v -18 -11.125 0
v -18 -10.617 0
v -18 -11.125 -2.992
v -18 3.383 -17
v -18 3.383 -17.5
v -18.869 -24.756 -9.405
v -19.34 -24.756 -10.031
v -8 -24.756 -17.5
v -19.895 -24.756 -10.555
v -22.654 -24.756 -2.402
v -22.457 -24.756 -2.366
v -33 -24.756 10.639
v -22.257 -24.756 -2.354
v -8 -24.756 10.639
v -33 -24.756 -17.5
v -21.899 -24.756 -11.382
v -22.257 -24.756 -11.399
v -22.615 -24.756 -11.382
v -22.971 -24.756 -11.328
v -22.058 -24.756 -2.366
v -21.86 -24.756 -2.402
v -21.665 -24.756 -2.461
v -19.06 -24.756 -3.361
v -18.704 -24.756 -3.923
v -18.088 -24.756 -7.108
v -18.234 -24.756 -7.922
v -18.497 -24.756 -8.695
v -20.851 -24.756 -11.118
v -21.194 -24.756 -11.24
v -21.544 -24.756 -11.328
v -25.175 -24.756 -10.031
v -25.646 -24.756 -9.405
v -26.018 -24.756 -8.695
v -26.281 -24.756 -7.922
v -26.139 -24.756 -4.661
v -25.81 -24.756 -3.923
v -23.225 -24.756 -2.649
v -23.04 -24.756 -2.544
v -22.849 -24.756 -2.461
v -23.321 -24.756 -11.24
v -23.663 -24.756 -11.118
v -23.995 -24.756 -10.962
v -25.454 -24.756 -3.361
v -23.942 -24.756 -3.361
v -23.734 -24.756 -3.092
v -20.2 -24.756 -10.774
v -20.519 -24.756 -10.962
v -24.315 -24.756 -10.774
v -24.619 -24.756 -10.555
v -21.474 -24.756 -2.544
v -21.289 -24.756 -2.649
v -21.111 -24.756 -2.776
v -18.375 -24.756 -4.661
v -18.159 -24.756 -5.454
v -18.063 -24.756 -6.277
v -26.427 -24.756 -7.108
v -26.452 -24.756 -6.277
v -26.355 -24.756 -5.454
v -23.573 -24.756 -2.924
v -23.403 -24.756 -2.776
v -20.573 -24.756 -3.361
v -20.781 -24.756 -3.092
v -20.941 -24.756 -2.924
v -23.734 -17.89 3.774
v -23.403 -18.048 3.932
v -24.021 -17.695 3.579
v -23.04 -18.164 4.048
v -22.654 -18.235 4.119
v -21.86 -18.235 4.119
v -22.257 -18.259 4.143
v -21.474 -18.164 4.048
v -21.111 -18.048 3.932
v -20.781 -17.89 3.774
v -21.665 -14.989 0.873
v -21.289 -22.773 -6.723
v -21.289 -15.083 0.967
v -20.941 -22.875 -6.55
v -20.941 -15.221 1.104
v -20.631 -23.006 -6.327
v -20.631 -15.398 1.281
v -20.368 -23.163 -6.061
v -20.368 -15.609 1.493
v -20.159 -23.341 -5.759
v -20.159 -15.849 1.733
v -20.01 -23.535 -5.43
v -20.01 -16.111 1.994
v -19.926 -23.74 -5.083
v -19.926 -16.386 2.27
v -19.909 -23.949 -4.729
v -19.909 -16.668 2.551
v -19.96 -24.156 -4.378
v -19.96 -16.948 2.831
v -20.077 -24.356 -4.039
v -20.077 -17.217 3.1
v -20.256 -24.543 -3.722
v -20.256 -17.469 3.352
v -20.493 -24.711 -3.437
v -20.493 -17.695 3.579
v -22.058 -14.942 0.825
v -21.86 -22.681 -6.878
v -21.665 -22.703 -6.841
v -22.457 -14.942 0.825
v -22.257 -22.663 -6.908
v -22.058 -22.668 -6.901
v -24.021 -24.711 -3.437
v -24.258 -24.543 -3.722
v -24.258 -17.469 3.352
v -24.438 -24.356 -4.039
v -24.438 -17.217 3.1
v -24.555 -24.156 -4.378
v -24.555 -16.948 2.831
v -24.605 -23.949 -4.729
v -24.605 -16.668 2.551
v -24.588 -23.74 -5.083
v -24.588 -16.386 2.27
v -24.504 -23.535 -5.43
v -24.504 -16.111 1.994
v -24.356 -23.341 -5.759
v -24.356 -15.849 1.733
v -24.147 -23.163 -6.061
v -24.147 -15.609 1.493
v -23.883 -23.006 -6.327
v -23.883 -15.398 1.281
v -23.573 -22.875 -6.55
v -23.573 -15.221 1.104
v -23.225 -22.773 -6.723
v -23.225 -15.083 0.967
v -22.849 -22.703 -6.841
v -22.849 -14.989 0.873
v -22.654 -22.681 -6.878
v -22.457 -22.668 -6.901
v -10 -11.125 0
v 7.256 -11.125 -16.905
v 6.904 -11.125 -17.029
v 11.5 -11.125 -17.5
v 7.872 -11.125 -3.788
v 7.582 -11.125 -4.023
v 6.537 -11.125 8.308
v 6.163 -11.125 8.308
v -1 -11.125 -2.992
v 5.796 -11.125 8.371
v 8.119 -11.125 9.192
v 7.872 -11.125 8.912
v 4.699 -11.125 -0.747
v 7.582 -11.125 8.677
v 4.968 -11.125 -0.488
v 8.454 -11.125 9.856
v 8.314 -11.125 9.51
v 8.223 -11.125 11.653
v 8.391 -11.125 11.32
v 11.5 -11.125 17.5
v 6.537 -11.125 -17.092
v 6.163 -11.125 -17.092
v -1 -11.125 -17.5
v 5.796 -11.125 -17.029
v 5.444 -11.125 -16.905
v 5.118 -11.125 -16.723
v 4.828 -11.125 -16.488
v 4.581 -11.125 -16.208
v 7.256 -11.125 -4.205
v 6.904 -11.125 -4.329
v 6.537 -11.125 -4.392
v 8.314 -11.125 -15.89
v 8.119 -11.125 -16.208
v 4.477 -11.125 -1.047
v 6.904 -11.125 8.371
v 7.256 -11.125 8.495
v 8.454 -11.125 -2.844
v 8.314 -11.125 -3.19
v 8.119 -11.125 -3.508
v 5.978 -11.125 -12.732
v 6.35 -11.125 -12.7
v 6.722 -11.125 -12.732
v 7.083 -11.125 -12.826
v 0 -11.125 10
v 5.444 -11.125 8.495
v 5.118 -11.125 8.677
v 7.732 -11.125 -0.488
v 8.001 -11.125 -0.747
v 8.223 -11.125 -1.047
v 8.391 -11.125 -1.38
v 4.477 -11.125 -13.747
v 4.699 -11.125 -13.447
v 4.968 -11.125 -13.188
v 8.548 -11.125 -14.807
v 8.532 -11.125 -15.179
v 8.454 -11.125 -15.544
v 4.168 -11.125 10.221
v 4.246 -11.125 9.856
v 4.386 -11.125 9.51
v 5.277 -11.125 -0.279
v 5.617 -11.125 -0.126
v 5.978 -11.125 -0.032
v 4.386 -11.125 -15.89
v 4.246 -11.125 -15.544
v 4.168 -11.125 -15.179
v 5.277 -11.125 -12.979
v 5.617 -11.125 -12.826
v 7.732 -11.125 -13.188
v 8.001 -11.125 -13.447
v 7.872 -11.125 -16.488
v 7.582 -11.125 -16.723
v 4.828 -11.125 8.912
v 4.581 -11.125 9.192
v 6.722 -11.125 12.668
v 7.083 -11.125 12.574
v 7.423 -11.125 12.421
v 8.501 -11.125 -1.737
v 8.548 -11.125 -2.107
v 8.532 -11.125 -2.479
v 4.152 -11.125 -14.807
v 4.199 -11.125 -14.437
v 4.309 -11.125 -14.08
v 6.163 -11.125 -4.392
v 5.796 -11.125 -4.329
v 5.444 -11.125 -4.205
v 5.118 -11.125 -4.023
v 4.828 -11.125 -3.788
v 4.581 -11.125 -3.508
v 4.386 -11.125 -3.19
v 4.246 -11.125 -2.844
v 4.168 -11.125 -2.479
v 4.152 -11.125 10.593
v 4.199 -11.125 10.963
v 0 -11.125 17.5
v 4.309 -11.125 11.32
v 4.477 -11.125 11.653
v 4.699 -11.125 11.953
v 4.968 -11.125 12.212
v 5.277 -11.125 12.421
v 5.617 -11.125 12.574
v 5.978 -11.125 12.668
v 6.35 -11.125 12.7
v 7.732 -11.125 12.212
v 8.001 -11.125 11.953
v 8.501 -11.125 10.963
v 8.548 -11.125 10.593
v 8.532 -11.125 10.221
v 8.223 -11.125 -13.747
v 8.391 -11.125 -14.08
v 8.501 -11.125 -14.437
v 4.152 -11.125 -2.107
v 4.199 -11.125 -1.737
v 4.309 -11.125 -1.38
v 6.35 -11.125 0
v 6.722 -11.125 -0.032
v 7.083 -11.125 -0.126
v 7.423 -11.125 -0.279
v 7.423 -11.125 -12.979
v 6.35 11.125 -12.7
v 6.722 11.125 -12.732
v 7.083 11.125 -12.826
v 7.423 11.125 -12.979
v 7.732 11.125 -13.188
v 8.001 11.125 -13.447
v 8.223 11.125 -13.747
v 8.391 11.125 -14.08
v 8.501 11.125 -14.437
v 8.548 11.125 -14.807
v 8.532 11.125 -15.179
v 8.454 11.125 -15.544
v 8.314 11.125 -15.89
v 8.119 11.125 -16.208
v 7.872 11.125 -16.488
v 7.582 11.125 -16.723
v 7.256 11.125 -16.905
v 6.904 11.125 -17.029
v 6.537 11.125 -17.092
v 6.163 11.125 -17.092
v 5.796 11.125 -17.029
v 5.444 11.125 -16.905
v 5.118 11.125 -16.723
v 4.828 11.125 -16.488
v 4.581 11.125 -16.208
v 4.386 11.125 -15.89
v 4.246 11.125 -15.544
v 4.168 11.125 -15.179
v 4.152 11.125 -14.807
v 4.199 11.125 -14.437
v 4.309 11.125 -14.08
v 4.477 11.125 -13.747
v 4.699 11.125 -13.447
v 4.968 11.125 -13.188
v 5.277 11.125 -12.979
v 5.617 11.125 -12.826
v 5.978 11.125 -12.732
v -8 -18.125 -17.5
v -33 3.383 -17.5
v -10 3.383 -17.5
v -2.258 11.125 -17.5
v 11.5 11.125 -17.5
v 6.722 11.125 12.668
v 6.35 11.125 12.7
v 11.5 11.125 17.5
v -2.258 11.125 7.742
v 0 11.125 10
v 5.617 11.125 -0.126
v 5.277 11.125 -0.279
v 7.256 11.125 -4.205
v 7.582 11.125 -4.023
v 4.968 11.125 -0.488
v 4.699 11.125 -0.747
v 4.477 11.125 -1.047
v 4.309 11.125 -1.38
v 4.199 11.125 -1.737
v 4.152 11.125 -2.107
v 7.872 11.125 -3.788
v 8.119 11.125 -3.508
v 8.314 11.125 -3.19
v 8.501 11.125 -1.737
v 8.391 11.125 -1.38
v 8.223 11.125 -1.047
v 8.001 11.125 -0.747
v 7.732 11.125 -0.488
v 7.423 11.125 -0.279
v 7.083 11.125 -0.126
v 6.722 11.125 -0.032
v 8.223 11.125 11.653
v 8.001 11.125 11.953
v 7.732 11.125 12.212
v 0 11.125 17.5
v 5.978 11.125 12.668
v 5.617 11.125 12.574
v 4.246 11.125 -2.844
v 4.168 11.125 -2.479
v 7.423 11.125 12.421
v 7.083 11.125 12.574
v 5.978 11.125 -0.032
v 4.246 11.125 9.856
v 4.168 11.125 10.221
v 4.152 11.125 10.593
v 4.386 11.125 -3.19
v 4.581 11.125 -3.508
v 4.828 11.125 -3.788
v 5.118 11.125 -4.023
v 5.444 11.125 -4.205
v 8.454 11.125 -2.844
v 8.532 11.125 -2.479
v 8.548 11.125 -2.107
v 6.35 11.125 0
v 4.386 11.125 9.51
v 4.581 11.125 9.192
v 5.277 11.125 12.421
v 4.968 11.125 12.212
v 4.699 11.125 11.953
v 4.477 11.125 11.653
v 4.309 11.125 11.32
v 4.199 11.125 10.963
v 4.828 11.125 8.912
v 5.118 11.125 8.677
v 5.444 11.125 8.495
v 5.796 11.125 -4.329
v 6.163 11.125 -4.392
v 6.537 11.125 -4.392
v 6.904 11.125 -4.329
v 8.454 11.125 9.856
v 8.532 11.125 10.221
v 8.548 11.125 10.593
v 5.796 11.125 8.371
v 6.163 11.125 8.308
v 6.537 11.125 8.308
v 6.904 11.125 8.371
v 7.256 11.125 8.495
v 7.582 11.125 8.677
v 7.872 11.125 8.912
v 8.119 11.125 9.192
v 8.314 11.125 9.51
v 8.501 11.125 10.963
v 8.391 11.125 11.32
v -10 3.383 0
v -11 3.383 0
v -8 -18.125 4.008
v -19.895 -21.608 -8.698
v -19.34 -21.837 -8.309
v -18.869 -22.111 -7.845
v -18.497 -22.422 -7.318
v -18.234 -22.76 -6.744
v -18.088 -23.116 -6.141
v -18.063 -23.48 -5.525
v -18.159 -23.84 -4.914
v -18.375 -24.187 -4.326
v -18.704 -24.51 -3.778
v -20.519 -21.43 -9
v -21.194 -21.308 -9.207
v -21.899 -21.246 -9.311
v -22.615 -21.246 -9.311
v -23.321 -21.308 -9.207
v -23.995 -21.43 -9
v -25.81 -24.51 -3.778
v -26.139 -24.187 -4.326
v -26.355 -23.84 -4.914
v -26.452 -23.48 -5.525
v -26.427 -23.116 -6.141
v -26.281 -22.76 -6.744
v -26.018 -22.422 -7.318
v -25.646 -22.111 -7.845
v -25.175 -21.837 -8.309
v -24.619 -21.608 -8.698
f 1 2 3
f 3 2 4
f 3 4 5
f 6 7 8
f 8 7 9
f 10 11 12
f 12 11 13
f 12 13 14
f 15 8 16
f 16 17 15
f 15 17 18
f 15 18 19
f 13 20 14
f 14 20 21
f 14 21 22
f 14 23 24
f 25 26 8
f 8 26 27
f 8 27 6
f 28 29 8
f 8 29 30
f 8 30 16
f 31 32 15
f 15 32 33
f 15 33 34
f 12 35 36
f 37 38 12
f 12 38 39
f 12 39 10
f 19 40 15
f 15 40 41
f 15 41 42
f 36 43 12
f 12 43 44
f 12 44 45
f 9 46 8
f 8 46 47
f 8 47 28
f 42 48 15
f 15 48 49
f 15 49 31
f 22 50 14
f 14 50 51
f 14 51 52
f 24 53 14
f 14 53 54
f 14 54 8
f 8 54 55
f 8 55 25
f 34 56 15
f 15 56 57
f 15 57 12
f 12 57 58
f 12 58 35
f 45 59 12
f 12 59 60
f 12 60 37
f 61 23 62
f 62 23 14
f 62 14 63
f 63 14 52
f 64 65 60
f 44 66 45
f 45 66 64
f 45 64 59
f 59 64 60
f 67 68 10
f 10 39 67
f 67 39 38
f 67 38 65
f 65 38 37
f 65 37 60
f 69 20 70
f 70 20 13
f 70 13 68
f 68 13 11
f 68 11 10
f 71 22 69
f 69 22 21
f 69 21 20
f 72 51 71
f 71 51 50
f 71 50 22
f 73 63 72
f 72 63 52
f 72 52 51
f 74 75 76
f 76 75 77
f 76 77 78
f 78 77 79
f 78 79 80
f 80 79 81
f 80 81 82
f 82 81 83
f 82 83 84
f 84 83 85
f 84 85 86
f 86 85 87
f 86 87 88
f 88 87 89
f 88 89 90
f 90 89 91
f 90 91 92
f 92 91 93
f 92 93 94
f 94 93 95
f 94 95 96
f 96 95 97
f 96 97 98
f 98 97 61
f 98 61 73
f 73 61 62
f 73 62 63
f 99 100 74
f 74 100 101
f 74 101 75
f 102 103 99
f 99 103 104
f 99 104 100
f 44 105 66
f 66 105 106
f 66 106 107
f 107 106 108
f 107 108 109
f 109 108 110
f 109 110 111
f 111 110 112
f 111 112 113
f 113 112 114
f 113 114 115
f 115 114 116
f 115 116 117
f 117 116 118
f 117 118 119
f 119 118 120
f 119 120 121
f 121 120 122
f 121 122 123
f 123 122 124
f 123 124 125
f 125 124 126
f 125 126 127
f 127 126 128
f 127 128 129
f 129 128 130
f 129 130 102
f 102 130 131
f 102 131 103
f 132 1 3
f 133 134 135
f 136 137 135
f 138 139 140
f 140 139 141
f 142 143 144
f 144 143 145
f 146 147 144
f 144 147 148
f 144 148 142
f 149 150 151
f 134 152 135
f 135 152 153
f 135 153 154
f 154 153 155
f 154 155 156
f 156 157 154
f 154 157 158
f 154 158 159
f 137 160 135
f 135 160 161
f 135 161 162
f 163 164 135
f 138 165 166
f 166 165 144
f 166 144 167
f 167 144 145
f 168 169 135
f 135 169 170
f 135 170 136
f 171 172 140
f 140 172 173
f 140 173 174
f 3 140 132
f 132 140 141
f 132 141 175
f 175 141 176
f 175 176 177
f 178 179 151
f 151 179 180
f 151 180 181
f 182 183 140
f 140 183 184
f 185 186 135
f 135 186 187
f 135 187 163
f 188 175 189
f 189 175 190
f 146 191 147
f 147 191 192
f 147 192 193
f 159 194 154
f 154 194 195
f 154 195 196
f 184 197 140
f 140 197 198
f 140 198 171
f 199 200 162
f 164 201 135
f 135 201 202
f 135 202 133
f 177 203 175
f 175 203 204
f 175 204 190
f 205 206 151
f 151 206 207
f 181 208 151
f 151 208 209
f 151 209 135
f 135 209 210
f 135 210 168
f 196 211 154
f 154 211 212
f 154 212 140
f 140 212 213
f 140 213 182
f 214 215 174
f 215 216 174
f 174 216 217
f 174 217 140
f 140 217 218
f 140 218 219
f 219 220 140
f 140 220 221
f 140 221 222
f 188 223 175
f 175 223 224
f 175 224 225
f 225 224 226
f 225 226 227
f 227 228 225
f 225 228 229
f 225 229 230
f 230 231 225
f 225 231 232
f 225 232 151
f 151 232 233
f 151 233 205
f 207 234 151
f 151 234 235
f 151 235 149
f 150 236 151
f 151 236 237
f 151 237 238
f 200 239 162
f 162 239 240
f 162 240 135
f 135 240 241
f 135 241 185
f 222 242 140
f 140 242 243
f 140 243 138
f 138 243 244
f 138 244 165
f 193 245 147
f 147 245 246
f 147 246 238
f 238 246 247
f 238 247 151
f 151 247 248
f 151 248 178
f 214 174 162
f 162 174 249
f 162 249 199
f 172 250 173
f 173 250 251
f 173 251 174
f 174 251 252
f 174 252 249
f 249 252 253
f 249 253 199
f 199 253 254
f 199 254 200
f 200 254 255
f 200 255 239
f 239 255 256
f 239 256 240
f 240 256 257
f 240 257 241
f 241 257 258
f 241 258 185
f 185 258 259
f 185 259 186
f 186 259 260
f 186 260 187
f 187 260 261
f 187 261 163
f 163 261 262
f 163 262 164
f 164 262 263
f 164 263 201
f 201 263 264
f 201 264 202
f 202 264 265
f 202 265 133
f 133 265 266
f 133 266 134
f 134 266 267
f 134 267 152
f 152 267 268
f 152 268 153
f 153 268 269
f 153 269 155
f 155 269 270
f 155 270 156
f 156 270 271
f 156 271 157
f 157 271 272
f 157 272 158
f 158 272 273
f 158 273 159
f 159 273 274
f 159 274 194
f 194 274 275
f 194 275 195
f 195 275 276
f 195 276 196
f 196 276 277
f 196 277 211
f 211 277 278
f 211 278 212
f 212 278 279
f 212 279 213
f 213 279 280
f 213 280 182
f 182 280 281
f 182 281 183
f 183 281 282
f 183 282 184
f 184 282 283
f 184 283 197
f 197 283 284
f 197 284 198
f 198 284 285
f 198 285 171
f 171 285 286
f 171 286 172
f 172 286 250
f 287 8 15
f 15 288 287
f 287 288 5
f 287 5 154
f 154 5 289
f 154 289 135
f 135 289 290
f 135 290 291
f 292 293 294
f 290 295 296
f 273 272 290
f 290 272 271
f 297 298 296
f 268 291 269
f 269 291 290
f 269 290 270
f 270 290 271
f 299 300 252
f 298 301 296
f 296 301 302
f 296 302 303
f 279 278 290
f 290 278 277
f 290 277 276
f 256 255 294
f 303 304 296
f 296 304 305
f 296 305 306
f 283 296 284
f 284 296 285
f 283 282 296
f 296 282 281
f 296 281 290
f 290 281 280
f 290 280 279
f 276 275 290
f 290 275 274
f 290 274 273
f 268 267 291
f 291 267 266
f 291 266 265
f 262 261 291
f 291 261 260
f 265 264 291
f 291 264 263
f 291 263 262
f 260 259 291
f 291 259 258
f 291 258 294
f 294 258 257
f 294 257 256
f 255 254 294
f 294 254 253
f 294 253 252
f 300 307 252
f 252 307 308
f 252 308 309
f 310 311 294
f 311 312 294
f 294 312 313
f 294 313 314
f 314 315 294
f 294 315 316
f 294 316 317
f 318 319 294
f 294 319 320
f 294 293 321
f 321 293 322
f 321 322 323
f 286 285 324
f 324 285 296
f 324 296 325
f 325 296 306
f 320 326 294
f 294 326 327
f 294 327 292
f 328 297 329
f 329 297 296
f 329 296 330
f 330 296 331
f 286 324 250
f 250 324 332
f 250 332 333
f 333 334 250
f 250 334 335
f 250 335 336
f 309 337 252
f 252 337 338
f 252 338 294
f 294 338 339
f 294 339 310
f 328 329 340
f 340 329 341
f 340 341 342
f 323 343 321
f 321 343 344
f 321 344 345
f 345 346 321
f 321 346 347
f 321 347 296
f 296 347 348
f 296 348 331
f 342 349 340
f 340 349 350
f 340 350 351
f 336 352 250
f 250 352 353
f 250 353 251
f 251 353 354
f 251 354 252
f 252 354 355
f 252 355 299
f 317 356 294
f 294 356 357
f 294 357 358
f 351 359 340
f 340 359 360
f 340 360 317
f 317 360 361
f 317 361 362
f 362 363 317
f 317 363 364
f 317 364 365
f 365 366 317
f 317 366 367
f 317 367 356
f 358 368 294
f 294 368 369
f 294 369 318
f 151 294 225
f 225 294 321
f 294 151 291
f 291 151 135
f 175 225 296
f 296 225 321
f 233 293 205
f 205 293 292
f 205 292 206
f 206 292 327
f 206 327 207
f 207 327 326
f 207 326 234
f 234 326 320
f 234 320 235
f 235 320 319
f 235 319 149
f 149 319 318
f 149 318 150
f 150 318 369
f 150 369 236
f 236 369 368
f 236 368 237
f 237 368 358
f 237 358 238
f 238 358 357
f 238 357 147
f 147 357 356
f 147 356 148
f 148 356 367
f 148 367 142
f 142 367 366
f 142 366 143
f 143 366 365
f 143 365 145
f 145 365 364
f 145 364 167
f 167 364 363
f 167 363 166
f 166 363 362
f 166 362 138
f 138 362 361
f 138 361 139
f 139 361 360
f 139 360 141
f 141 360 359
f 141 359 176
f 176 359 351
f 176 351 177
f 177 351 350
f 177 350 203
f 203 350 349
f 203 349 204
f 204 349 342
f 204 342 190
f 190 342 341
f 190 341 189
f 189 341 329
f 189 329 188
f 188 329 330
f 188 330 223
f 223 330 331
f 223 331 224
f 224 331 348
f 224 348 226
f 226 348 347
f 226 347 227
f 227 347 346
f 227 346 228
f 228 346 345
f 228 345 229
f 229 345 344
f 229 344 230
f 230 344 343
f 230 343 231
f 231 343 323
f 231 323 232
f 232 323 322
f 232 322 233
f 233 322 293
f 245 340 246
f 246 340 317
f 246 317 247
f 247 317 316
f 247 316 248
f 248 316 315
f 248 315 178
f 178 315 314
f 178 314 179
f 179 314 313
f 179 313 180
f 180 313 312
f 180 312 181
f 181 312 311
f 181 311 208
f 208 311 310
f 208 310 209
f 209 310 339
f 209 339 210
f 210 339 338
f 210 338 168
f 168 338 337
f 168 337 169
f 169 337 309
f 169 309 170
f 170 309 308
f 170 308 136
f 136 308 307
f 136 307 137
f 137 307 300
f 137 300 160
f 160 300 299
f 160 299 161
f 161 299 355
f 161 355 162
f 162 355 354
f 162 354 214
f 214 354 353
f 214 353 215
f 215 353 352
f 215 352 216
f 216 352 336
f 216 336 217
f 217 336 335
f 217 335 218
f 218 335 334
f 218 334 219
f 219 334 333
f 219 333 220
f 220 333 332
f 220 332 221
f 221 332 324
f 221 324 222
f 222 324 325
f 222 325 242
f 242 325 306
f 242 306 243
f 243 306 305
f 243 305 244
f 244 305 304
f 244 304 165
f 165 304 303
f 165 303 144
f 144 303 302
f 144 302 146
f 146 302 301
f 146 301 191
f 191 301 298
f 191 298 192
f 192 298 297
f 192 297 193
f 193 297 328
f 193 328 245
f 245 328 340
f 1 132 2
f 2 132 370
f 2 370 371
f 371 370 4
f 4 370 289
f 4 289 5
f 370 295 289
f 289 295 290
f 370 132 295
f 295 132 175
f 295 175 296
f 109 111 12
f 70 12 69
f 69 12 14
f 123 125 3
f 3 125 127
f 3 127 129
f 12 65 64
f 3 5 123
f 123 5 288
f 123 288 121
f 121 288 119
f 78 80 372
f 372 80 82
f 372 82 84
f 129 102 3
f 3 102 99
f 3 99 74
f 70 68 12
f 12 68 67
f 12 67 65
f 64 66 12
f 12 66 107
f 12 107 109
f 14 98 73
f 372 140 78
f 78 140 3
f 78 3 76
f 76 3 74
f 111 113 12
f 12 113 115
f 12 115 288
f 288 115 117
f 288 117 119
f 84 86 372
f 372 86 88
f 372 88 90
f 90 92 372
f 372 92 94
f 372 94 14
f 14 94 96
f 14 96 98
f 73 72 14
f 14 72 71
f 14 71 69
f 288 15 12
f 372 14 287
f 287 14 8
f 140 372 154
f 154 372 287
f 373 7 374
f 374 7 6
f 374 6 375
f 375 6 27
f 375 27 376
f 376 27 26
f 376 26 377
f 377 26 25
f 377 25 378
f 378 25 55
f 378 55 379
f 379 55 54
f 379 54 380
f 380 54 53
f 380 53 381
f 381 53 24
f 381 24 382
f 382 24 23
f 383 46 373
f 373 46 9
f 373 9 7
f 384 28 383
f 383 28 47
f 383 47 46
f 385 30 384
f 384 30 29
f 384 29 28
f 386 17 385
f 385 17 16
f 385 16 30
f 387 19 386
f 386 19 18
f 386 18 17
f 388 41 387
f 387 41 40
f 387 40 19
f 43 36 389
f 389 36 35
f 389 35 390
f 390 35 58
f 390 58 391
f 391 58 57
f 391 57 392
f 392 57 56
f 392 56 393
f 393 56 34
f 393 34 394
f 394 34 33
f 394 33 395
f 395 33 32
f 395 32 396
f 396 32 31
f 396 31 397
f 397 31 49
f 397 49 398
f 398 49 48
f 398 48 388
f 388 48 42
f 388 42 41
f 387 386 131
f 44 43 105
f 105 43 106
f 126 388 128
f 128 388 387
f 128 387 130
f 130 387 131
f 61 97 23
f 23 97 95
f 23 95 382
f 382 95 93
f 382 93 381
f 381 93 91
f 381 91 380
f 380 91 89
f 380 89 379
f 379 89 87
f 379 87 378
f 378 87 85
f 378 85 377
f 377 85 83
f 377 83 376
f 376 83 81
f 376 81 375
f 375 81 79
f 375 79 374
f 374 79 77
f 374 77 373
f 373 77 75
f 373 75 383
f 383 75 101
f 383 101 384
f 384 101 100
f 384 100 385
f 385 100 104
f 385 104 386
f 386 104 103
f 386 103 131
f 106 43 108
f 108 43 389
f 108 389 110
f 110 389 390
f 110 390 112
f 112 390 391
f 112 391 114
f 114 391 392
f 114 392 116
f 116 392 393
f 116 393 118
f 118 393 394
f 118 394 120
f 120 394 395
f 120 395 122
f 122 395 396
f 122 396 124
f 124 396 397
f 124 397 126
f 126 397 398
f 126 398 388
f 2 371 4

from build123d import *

# Parameters (mm, degrees)
SKETCH1_W               = 35
SKETCH1_H               = 22.25
BOSS_EXTRUDE1_DEPTH     = 11.5
SKETCH2_R               = 2.2
CUT_EXTRUDE1_DEPTH      = 31.554255023
LPATTERN1_COUNT         = 3
LPATTERN1_PITCH         = 12.7
SKETCH3_W               = 17.5
SKETCH3_H               = 14.50834553
BOSS_EXTRUDE2_DEPTH     = 18
CHAMFER1_SIZE           = 10
BOSS_EXTRUDE3_DEPTH     = 15
BOSS_EXTRUDE4_DEPTH     = 10
CHAMFER2_SIZE           = 7
SKETCH10_R              = 2.35
CUT_EXTRUDE6_DEPTH      = 17
CUT_EXTRUDE7_DEPTH      = 16
CUT_EXTRUDE7_DEPTH_BACK = 4
SKETCH12_R              = 4.2
CHAMFER3_START          = -7.072243188
CHAMFER3_DEPTH          = 22.731839604


with BuildPart() as part:
    # Sketch1 → Boss-Extrude1 (new body)
    with BuildSketch(Plane(origin=(0, 0, 0), x_dir=(0, 0, -1), z_dir=(1, 0, 0))):
        Rectangle(SKETCH1_W, SKETCH1_H)
    extrude(amount=BOSS_EXTRUDE1_DEPTH)

    # Sketch2 → Cut-Extrude1 (cut, through all)
    with BuildSketch(Plane(origin=(0, 11.125, 0), x_dir=(1, 0, 0), z_dir=(0, 1, 0))):
        with Locations(Location((6.35, -10.5, 0), (0, 0, 270))):
            Circle(SKETCH2_R)
    cut_extrude1 = extrude(amount=-CUT_EXTRUDE1_DEPTH, mode=Mode.SUBTRACT)

    # LPattern1: Cut-Extrude1 ×3
    with Locations(*[(0, 0, -i * LPATTERN1_PITCH) for i in range(1, LPATTERN1_COUNT)]):
        add(cut_extrude1, mode=Mode.SUBTRACT)

    # Sketch3 → Boss-Extrude2 (add)
    with BuildSketch(Plane.ZY):
        with Locations((-8.75, -3.870827235)):
            Rectangle(SKETCH3_W, SKETCH3_H)
    extrude(amount=BOSS_EXTRUDE2_DEPTH)

    # Chamfer1
    # the kernel refuses this chamfer: 10 mm, written as the material it adds along each edge
    with BuildSketch(Plane(origin=(0, 3.38334553, 0), x_dir=(0, 0, 1), z_dir=(0, -1, 0))) as chamfer1_piece_1:
        Polygon((CHAMFER1_SIZE, 0), (0, CHAMFER1_SIZE), (0, 0), align=None)
    extrude(amount=14.50834553)
    with BuildSketch(Plane(origin=(0, 3.38334553, -17.5), x_dir=(0, 1, 0), z_dir=(0, 0, 1))) as chamfer1_piece_2_section:
        Polygon((CHAMFER1_SIZE, 0), (0, CHAMFER1_SIZE), (0, 0), align=None)
    chamfer1_piece_2 = extrude(amount=17.5, mode=Mode.PRIVATE)
    chamfer1_piece_2 = split(chamfer1_piece_2, bisect_by=Plane(origin=(0, 11.125, -17.5), z_dir=(0, -1, 0)), keep=Keep.TOP, mode=Mode.PRIVATE)
    add(chamfer1_piece_2)
    with BuildSketch(Plane(origin=(0, 3.38334553, -17.5), x_dir=(0, 1, 0), z_dir=(0, 0, 1))) as chamfer1_piece_3a_section:
        Polygon((CHAMFER1_SIZE, 0), (0, CHAMFER1_SIZE), (0, 0), align=None)
    chamfer1_piece_3a = extrude(amount=43.21682988, mode=Mode.PRIVATE)
    chamfer1_piece_3a = split(chamfer1_piece_3a, bisect_by=Plane(origin=(0, 11.125, -17.5), z_dir=(0, -1, 0)), keep=Keep.TOP, mode=Mode.PRIVATE)
    chamfer1_piece_3a = split(chamfer1_piece_3a, bisect_by=Plane(origin=(0, 3.38334553, 17.5), z_dir=(0, 0, -1)), keep=Keep.TOP, mode=Mode.PRIVATE)
    chamfer1_piece_3a = split(chamfer1_piece_3a, bisect_by=Plane(origin=(0, 3.38334553, 0), z_dir=(0, 0, 1)), keep=Keep.TOP, mode=Mode.PRIVATE)
    with BuildSketch(Plane(origin=(0, 29.100175409, 0), x_dir=(0, 0, 1), z_dir=(0, -1, 0))) as chamfer1_piece_3b_section:
        Polygon((CHAMFER1_SIZE, 0), (0, CHAMFER1_SIZE), (0, 0), align=None)
    chamfer1_piece_3b = extrude(amount=40.225175409, mode=Mode.PRIVATE)
    chamfer1_piece_3b = split(chamfer1_piece_3b, bisect_by=Plane(origin=(0, 11.125, 0), z_dir=(0, -1, 0)), keep=Keep.TOP, mode=Mode.PRIVATE)
    chamfer1_piece_3b = split(chamfer1_piece_3b, bisect_by=Plane(origin=(0, 3.38334553, 0), z_dir=(0, 1, 0)), keep=Keep.TOP, mode=Mode.PRIVATE)
    chamfer1_piece_3 = chamfer1_piece_3a & chamfer1_piece_3b
    add(chamfer1_piece_3)

    # Sketch4 → Boss-Extrude3 (add)
    with BuildSketch(Plane.ZY.offset(18)):
        Polygon((-17.5, -11.125), (-17.5, 3.38334553), (10.639309948, -24.755964418), (-17.5, -24.755964418), (-17.5, -19.755964418), align=None)
    extrude(amount=BOSS_EXTRUDE3_DEPTH)

    # Sketch6 → Boss-Extrude4 (add)
    with BuildSketch(Plane(origin=(-18, 0, 0), x_dir=(0, 0, -1), z_dir=(1, 0, 0))):
        Polygon((17.5, -11.125), (17.5, -24.755964418), (-10.639309948, -24.755964418), (2.99165447, -11.125), align=None)
    extrude(amount=BOSS_EXTRUDE4_DEPTH)

    # Chamfer2
    chamfer2_edges = [part.edges().sort_by_distance(p)[0] for p in [
        (-8, -11.125, -10.245827235),
    ]]
    chamfer(chamfer2_edges, length=CHAMFER2_SIZE)

    # Sketch10 → Cut-Extrude6 (cut)
    with BuildSketch(Plane(origin=(0, -7.058327235, -7.058327235), x_dir=(1, 0, 0), z_dir=(0, 0.7071067811865477, 0.7071067811865475))):
        with Locations(Location((-22.257276658, -13.490437262, 0), (0, 0, 270))):
            Circle(SKETCH10_R)
    extrude(amount=-CUT_EXTRUDE6_DEPTH, mode=Mode.SUBTRACT)

    # Sketch12 → Cut-Extrude7 (cut, two sides: drawn at the far end of the back side and taken through both)
    with BuildSketch(Plane(origin=(0, -23.282012782, -13.732717015), x_dir=(-1, 0, 0), z_dir=(0, -0.8613286818189869, -0.5080481294877154)).offset(-CUT_EXTRUDE7_DEPTH_BACK)):
        with Locations((22.257276658, -6.958686238)):
            Circle(SKETCH12_R)
    extrude(amount=CUT_EXTRUDE7_DEPTH + CUT_EXTRUDE7_DEPTH_BACK, mode=Mode.SUBTRACT)

    # Chamfer3: read off the stored shape, not the designer's step
    # Chamfer3 outline → Chamfer3 (cut)
    with BuildSketch(Plane(origin=(0, 0, 0), x_dir=(1, 0, 0), z_dir=(0, 0.6357072528610996, -0.7719302356170498)).offset(CHAMFER3_START)):
        Polygon((-11, -2.611706712), (-18, 8.195316587), (-18, -4), (-10.100765054, -4), align=None)
    extrude(amount=CHAMFER3_DEPTH, mode=Mode.SUBTRACT)


solid = part.part
